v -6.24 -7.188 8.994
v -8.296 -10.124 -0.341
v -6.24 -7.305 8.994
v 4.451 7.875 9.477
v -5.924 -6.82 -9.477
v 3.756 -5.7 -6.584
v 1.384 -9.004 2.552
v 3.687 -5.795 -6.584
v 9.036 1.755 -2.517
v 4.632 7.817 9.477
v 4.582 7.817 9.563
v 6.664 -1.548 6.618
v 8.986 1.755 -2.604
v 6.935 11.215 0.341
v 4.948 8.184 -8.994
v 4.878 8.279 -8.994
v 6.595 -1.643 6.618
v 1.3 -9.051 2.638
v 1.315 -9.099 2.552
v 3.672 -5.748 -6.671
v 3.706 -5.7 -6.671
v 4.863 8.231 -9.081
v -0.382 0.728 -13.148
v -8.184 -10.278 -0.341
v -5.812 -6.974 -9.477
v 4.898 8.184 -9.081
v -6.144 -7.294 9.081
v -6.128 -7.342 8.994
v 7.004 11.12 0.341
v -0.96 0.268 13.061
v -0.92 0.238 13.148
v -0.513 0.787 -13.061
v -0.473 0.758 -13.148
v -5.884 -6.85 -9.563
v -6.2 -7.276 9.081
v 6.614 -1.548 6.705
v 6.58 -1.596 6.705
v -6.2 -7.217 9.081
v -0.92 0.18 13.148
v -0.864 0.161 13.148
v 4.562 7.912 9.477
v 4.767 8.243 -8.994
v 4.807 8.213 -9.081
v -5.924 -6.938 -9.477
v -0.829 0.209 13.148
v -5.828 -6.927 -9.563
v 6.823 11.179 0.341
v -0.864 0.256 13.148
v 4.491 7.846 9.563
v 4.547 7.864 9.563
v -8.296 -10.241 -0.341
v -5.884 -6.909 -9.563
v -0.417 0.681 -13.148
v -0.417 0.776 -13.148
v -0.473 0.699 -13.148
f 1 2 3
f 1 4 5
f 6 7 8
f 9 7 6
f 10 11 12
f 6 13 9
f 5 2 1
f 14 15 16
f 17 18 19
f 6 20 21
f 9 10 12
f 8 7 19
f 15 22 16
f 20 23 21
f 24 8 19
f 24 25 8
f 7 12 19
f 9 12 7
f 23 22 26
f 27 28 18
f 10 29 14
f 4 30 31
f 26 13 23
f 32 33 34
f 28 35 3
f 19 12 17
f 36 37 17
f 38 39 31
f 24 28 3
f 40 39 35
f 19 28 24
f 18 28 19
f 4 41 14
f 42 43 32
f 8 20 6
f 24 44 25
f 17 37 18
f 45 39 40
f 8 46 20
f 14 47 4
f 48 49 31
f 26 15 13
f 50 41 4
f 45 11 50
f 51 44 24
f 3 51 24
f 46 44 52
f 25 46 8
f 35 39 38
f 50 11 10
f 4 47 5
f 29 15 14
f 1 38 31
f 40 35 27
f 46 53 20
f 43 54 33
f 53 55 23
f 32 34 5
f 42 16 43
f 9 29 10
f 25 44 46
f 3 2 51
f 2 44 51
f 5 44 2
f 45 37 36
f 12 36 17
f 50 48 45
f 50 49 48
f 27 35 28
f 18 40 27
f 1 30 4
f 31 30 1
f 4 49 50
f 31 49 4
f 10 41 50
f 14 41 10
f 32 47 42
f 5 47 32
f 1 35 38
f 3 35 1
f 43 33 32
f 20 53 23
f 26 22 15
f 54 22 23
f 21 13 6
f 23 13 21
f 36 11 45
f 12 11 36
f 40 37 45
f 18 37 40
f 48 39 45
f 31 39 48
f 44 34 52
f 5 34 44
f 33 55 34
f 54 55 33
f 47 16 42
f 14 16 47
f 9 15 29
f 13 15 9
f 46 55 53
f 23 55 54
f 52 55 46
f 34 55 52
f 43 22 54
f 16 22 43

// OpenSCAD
// Auto-generated OpenSCAD file

    inner_points = 10*[[-0.5843169179657698, -0.6879231760558433, -0.9476863813058384], [-0.8215331245846192, -1.0182565838404067, -0.03411738499587125], [0.6903670649661048, 1.1119849418432066, 0.03411738499587125], [0.4531508583472553, 0.7816515340586432, 0.9476863813058384], [-0.04323343492736341, 0.07283869886099822, -1.3061135483231257], [-0.6159240181612884, -0.7246566943174167, 0.8994371127319727], [0.4847579585427739, 0.8183850523202166, -0.8994371127319727], [-0.08793262469115103, 0.02088965914180165, 1.3061135483231257], [0.36563737174037947, -0.5700346554462439, -0.6583956206905608], [0.12842116512152985, -0.9003680632308071, 0.25517337561940623], [0.8936287652105167, 0.17551169801297445, -0.251719185099408], [0.6564125585916671, -0.1548217097715889, 0.6618498112105591]];

    outer_points = 10*[[-0.9731118629091229, -0.4413118352277251, 0.7519334728152625], [-0.619892288935397, 0.4413118352277251, 1.0621130803228622], [0.619892288935397, -0.4413118352277251, -1.0621130803228622], [0.9731118629091229, 0.4413118352277251, -0.7519334728152625], [-0.7562957052968324, -1.0654210178425345, 0.0012814349347830545], [0.09645178068618293, 1.0654210178425345, 0.7501212501511937], [-0.09645178068618293, -1.0654210178425345, -0.7501212501511937], [0.7562957052968324, 1.0654210178425345, -0.0012814349347830545], [-0.03757443368860547, -0.7737087789198632, 0.632426191231289], [0.3156451402851202, 0.10891489153558698, 0.9426057987388886], [0.622269490922044, -0.7737087789198632, -0.11897649385468778], [0.9754890648957697, 0.10891489153558698, 0.19120311365291187]];

    // Convex hull for inner set (I)
    module inner_hull() {
        hull() {
            for (p = inner_points) {
                translate(p) sphere(r=0.1);
            }
        }
    }

    // Convex hull for outer set (O) minus inner hull (O \ I)
    module outer_minus_inner() {
        difference() {
            hull() {
                for (p = outer_points) {
                    translate(p) sphere(r=0.1);
                }
            }
            inner_hull(); // Subtract inner hull
        }
    }

    // Convex hull for outer set (O) minus all translated inner hulls
    module outer_minus_AllTranslationInner() {
        difference() {
            hull() {
                for (p = outer_points) {
                    translate(p) sphere(r=0.1);
                }
            }
            hull() {
                translate([0,0,50]) inner_hull();
                translate([0,0,-50]) inner_hull();
            }; // Subtract translated inner hulls
        }
    }

    // Difference between outer_minus_inner and outer_minus_AllTranslationInner
    module outer_minus_inner_diff() {
        difference() {
            // Outer minus inner
            difference() {
                hull() {
                    for (p = outer_points) {
                        translate(p) sphere(r=0.1);
                    }
                }
                inner_hull();
            }

            // Subtract Outer minus AllTranslationInner
            difference() {
                hull() {
                    for (p = outer_points) {
                        translate(p) sphere(r=0.1);
                    }
                }
                hull() {
                    translate([0,0,50]) inner_hull();
                    translate([0,0,-50]) inner_hull();
                };
            }
        }
    }

    // Rendering all with colors applied
    color([1, 0, 0, 0.5]) inner_hull(); // Transparent red
    
